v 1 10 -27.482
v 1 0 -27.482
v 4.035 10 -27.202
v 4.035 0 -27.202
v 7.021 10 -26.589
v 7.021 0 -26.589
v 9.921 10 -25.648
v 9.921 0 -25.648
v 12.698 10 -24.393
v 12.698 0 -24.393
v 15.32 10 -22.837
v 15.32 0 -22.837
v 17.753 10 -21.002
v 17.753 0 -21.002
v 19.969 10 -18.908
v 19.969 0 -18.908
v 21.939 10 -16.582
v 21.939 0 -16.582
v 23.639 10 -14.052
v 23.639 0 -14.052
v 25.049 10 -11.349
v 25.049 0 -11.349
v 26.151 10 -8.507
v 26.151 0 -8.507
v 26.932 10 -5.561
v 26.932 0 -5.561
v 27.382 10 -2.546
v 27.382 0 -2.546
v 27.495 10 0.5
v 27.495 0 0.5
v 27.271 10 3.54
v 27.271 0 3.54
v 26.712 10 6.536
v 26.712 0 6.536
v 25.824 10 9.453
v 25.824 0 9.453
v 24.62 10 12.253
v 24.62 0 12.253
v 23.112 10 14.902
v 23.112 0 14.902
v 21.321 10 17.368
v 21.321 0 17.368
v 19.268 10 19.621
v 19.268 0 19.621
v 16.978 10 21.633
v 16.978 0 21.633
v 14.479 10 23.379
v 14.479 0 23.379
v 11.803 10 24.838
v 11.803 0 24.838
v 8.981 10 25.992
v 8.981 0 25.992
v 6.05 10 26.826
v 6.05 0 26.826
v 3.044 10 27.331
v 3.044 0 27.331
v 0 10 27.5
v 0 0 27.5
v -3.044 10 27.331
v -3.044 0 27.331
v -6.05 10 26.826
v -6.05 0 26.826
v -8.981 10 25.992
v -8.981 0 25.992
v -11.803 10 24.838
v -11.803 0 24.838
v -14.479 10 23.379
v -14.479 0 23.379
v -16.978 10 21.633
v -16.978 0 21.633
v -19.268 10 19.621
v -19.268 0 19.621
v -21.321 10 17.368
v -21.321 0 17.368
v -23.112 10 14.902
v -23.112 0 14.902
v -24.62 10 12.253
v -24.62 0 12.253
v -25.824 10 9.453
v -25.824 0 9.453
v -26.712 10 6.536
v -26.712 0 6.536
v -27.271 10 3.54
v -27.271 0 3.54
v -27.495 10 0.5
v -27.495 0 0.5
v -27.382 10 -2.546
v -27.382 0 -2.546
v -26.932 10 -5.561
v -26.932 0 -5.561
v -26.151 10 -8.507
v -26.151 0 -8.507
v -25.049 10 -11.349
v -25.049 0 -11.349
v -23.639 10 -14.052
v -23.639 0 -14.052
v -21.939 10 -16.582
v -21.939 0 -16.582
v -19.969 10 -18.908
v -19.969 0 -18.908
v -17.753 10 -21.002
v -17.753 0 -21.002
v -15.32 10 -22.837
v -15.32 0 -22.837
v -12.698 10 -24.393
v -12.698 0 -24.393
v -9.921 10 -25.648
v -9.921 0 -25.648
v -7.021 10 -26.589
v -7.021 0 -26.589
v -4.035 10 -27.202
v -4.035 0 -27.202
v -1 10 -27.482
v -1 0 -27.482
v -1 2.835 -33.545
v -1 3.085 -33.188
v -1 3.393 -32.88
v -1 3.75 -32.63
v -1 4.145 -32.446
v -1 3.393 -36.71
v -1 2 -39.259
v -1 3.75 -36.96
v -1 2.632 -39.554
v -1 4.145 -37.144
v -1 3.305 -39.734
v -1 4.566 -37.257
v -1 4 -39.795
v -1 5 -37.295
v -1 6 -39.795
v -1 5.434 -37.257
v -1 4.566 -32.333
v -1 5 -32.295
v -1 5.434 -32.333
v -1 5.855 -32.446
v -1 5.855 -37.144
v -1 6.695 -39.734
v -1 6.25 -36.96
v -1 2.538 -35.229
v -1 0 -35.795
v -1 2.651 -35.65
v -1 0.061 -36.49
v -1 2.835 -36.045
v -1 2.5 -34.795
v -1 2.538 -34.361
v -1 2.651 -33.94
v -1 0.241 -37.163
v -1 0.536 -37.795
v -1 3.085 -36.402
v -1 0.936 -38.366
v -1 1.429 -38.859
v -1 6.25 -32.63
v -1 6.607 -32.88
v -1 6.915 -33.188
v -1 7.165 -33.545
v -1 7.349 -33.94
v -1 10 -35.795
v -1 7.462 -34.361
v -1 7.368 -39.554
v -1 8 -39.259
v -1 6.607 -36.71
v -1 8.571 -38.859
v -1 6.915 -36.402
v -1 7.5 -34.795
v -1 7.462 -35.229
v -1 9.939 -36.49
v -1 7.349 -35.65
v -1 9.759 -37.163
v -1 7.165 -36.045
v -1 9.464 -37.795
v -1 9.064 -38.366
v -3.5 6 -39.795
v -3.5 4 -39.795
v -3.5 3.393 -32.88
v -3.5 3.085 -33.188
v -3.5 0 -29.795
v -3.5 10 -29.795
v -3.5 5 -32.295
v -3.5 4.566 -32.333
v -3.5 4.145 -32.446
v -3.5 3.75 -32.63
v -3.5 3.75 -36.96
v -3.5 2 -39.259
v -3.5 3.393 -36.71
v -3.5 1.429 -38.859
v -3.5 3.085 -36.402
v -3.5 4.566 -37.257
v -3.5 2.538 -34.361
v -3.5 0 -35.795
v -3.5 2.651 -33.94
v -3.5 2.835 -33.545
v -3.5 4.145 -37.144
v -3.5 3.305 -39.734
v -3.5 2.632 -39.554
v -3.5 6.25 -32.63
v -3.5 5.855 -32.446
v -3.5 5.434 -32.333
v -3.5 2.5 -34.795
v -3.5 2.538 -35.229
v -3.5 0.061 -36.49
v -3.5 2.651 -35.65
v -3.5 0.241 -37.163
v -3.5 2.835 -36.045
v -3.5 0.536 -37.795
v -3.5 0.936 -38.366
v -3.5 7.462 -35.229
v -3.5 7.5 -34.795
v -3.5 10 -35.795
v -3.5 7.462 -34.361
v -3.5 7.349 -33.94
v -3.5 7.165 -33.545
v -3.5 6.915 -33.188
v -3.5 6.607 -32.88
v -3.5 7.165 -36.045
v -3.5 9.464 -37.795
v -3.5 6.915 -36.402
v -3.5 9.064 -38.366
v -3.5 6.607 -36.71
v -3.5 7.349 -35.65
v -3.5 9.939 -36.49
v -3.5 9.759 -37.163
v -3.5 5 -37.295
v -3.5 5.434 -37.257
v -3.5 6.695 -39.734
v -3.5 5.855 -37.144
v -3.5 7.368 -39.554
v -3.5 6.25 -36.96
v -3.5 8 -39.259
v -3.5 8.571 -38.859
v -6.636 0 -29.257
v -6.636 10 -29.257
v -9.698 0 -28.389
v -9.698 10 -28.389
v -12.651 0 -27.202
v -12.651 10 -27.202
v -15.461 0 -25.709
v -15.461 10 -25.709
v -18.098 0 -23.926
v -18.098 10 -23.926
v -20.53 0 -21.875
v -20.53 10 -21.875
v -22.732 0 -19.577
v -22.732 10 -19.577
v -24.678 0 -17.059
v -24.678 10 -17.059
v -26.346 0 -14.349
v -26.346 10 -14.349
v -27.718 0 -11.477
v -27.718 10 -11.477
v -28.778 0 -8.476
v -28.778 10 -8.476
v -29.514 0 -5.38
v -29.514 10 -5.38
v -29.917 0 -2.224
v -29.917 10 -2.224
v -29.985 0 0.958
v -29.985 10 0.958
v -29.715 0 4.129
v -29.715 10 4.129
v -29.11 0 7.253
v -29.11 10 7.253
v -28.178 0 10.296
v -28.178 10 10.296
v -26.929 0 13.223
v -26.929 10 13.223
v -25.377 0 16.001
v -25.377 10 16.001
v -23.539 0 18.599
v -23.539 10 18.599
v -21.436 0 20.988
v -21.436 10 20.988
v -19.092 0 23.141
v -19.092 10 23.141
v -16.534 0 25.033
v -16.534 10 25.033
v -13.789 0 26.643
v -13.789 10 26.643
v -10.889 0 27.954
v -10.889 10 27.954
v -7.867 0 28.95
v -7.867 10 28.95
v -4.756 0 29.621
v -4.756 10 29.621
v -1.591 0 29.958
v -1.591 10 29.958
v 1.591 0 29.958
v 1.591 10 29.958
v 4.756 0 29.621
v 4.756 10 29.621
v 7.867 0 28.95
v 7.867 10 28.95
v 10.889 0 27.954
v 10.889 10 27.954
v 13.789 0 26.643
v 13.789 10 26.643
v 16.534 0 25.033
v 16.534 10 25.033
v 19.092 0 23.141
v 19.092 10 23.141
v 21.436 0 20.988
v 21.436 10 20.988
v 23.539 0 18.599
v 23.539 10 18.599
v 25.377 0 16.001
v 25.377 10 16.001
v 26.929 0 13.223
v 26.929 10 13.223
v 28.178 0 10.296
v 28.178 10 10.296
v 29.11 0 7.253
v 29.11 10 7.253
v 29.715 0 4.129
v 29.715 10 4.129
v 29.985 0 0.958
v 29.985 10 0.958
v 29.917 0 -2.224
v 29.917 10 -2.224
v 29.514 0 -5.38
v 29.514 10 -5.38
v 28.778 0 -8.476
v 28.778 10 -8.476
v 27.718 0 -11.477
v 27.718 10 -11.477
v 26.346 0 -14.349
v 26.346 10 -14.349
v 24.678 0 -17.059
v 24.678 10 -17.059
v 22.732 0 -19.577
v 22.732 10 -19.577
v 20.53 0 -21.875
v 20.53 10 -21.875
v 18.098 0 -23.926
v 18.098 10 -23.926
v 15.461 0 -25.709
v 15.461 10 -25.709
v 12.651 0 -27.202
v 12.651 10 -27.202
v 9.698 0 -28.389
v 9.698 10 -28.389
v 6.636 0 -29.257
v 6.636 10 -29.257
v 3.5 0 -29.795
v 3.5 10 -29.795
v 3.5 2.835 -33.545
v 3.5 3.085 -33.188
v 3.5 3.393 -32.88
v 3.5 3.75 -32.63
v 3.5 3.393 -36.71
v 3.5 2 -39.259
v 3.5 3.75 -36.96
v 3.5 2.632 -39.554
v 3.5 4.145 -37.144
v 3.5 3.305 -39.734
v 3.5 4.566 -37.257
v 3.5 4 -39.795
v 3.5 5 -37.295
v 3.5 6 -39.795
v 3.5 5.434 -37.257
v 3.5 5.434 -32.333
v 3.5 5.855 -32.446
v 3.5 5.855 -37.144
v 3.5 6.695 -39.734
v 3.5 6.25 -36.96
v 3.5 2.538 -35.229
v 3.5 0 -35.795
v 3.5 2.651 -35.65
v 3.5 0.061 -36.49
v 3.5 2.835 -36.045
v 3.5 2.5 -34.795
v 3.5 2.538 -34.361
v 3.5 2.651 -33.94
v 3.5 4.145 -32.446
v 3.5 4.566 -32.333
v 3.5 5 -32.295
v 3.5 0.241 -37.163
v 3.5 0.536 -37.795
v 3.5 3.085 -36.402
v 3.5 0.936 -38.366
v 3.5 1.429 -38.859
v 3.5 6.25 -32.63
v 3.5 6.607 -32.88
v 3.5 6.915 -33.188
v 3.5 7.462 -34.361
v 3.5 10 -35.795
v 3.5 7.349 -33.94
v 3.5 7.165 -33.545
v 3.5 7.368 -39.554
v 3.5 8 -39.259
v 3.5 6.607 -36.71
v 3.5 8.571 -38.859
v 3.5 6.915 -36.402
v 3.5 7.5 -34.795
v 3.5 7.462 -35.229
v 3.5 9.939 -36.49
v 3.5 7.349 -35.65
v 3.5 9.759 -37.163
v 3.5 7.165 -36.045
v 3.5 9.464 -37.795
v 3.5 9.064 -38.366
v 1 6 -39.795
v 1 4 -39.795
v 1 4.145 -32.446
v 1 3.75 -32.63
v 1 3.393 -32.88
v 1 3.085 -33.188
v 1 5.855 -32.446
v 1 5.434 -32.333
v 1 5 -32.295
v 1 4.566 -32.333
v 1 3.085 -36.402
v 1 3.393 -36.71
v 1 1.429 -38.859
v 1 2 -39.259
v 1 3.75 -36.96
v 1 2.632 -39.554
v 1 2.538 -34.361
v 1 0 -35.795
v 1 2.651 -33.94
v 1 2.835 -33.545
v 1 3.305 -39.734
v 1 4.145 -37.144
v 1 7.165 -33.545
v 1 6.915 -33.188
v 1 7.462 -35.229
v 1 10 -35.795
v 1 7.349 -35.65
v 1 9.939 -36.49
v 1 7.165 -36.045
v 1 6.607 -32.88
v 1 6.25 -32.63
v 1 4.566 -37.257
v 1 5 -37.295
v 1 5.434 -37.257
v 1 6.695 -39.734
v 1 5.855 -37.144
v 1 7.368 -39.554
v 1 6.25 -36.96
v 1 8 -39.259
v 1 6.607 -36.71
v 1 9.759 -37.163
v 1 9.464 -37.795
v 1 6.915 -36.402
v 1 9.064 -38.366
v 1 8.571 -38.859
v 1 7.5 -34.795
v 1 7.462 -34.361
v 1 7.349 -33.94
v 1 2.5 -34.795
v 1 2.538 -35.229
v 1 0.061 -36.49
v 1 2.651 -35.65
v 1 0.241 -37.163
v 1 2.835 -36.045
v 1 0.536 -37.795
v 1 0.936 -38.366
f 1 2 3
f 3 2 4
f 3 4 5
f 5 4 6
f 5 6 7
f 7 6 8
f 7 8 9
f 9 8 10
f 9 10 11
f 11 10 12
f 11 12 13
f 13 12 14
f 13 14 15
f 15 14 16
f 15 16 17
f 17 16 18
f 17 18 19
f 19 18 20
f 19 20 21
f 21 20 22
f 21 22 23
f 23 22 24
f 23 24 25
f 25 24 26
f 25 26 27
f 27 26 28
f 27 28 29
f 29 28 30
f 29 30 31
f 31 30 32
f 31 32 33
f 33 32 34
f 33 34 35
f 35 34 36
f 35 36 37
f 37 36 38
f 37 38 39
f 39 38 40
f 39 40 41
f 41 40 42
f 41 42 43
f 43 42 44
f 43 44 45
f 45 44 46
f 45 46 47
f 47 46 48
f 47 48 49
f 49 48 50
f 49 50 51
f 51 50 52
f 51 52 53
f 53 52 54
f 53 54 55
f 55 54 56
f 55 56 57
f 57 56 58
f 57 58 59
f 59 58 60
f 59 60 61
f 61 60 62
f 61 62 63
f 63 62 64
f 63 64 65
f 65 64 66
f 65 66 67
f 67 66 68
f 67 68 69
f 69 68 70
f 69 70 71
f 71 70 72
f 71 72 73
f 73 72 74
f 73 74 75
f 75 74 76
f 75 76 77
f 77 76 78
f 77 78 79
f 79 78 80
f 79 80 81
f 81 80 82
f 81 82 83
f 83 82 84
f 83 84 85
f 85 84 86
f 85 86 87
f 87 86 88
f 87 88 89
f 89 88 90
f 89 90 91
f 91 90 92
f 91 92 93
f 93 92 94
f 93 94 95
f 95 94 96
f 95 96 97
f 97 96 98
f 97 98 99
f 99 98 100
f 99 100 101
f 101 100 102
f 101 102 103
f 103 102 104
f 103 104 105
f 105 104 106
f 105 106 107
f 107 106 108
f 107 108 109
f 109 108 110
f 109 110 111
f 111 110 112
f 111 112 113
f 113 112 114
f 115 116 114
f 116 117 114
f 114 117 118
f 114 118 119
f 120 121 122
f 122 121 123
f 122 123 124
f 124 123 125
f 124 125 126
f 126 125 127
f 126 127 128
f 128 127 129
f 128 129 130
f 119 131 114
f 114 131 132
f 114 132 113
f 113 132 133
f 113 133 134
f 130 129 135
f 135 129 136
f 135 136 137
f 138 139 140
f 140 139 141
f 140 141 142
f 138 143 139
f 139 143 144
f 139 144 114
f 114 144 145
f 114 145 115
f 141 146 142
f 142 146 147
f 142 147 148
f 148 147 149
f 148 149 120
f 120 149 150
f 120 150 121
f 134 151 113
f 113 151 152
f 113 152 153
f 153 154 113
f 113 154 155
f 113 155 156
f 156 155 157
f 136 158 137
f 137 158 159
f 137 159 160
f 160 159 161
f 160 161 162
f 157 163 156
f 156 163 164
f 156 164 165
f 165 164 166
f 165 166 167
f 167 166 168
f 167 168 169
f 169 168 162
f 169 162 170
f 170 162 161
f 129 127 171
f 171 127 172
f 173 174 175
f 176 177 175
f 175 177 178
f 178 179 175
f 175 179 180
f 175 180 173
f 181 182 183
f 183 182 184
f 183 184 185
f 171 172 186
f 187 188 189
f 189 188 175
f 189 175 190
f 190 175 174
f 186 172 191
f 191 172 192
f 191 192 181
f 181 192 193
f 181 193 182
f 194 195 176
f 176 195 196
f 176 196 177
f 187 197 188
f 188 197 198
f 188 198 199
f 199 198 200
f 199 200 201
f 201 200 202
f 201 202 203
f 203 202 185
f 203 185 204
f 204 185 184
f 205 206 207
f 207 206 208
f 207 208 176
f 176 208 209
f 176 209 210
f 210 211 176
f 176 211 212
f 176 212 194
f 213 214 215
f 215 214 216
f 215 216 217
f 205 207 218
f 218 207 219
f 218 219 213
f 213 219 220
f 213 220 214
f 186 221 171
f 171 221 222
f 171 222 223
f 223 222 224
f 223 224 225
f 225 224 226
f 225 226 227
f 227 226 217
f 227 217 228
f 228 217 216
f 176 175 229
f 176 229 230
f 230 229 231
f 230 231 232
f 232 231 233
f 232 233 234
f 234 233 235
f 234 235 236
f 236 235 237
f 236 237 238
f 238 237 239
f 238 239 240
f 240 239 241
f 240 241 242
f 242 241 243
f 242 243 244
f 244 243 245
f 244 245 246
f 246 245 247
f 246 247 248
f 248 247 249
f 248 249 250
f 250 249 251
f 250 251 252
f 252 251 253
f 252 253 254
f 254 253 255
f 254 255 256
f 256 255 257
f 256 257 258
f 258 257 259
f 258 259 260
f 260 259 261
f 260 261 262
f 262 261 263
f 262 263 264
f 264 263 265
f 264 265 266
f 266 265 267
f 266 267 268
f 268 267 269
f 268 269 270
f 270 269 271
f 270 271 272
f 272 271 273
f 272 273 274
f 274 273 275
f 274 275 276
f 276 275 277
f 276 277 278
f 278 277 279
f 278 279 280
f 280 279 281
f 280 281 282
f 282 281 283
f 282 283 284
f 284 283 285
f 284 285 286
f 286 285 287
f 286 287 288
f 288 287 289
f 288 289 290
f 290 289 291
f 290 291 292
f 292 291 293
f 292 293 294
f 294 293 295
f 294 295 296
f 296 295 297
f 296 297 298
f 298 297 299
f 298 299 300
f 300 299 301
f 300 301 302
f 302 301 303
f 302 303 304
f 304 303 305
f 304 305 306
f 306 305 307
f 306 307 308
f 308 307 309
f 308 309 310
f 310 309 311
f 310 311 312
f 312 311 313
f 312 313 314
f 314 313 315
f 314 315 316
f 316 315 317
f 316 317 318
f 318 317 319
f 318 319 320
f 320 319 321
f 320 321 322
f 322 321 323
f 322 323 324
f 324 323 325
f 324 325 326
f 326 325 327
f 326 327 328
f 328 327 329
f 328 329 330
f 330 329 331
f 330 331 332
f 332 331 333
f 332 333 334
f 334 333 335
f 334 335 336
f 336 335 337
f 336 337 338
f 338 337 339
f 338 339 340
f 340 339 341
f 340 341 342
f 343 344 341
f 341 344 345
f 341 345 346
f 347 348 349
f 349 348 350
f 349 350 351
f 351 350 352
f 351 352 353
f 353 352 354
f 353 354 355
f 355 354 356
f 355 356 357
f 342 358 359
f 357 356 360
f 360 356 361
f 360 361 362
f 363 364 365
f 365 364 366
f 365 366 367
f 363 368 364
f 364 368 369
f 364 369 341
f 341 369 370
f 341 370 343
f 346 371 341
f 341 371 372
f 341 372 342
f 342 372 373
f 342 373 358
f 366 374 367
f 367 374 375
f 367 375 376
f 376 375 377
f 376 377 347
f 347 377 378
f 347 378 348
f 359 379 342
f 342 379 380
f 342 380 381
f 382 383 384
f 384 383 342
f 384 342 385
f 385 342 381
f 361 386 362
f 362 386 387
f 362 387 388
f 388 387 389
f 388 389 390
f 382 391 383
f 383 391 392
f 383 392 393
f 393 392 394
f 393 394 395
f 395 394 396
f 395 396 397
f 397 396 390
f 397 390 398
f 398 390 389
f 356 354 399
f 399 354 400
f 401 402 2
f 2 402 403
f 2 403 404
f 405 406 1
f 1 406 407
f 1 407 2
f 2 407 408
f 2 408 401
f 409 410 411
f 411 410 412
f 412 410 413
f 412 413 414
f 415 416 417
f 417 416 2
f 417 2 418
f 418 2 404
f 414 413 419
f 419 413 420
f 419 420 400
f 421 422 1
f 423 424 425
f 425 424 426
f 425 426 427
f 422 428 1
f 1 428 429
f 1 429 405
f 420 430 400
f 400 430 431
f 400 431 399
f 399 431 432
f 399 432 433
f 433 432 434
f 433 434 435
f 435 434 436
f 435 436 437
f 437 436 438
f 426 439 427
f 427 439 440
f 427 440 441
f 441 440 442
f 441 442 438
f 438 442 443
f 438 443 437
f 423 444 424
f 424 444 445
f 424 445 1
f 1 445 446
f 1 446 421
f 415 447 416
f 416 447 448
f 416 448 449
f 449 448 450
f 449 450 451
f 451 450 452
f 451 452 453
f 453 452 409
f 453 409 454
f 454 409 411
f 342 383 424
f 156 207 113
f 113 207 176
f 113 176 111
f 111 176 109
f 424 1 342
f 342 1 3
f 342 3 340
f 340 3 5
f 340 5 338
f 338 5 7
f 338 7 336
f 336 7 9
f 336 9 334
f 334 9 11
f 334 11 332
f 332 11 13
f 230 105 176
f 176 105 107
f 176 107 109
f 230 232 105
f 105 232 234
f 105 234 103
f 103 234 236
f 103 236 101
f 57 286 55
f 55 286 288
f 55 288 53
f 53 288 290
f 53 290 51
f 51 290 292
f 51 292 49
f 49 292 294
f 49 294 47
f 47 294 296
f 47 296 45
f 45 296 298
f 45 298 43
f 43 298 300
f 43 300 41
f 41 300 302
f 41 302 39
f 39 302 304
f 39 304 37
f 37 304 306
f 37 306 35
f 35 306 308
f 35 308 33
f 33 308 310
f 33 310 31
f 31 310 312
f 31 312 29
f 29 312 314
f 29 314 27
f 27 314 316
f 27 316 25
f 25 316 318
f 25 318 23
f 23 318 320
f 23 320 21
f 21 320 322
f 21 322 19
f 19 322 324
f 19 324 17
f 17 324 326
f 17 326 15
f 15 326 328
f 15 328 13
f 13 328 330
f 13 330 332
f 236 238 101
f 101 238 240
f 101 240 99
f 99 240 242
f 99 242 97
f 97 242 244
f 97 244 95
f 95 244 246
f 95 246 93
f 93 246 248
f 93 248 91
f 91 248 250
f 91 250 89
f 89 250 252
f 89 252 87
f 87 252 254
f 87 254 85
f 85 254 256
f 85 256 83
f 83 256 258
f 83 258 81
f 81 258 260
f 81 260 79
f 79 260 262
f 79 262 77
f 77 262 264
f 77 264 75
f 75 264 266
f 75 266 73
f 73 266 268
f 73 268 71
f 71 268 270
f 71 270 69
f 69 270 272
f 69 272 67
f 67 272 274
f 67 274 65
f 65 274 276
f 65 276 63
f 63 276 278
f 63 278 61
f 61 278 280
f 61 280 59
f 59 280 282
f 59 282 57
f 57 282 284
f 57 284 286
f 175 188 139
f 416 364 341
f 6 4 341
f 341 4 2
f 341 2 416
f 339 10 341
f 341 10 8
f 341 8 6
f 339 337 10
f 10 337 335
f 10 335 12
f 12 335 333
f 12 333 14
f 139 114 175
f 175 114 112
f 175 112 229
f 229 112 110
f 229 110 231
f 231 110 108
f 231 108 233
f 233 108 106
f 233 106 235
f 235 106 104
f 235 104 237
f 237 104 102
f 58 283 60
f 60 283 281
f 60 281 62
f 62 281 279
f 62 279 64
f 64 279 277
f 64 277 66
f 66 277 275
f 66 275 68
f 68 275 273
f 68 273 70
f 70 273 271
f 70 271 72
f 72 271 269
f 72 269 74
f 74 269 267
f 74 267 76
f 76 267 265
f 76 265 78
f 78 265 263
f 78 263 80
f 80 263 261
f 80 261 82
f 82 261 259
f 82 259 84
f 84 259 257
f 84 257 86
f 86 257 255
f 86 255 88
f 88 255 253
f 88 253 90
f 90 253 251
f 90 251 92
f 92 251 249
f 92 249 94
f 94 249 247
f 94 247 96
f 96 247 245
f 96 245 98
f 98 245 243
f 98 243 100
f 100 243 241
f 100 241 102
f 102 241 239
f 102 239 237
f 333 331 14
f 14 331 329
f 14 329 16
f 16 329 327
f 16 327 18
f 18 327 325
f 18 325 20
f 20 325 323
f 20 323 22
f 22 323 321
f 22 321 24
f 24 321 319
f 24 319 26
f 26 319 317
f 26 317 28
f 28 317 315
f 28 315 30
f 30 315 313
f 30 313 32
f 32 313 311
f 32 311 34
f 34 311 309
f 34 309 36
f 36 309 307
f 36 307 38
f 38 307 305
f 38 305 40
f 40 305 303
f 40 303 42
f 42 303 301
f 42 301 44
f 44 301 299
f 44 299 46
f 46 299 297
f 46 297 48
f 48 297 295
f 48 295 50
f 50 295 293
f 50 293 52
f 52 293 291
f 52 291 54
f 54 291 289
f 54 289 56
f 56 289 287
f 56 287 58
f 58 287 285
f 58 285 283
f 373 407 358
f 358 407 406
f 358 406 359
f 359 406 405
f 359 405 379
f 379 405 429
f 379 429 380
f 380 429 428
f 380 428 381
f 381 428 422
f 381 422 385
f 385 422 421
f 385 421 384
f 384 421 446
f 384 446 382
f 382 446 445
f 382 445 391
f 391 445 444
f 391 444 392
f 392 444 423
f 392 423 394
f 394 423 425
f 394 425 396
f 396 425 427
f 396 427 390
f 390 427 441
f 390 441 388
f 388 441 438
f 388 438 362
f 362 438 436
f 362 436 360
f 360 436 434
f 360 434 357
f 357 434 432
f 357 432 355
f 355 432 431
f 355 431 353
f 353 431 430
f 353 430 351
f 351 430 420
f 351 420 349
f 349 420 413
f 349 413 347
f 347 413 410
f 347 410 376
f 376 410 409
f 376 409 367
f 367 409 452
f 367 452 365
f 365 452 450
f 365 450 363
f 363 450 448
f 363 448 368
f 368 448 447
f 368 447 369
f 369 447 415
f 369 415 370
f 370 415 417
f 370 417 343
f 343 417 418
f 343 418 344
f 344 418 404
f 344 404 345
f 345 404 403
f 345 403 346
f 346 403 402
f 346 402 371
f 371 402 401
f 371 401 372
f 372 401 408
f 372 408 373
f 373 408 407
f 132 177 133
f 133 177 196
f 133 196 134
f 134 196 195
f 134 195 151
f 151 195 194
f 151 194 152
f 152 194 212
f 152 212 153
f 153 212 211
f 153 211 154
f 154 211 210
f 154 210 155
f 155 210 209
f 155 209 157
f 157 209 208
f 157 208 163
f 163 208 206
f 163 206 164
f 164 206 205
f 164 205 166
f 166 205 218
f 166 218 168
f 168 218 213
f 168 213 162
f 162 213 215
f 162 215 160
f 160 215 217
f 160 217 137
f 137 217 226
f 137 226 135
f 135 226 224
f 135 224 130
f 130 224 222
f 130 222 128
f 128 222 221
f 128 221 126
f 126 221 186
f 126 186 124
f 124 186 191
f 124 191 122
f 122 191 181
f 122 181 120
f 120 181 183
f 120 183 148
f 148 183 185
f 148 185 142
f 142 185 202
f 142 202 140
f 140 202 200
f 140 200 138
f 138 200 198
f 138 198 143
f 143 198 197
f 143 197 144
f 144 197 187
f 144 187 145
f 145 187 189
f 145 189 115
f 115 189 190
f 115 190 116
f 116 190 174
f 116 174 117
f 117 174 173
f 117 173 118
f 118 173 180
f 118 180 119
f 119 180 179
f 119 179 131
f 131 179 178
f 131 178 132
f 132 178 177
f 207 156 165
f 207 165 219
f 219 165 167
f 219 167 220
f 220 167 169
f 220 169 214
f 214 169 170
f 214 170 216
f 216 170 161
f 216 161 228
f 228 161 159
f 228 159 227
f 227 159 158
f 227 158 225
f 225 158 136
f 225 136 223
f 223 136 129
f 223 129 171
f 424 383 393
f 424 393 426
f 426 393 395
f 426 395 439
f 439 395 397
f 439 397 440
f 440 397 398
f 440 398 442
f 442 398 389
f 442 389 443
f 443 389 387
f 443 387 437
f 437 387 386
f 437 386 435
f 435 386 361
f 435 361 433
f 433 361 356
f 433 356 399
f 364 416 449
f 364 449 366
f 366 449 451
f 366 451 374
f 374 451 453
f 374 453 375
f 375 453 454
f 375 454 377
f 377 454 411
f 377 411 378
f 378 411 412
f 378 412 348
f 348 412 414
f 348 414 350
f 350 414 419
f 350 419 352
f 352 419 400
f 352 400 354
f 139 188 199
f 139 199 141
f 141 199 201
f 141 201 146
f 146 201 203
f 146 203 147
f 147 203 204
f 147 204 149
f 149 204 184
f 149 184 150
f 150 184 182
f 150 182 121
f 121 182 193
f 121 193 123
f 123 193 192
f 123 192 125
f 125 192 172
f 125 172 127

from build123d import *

# Parameters (mm, degrees)
SALIENTE_EXTRUIR1_DEPTH = 10
CROQUIS3_R              = 2.5
CORTAR_EXTRUIR1_DEPTH   = 10
REDONDEO1_R             = 4


with BuildPart() as part:
    # Croquis2 → Saliente-Extruir1 (new body)
    with BuildSketch(Plane(origin=(0, 0, 0), x_dir=(1, 0, 0), z_dir=(0, 1, 0))):
        with BuildLine():
            Line((-1, 39.795133831), (-1, 27.481812167))
            ThreePointArc((-1, 27.481812167), (0, -27.5), (1, 27.481812167))
            Line((1, 27.481812167), (1, 39.795133831))
            Line((1, 39.795133831), (3.5, 39.795133831))
            Line((3.5, 39.795133831), (3.5, 29.795133831))
            ThreePointArc((3.5, 29.795133831), (0, -30), (-3.5, 29.795133831))
            Line((-3.5, 29.795133831), (-3.5, 39.795133831))
            Line((-3.5, 39.795133831), (-1, 39.795133831))
        make_face()
    extrude(amount=SALIENTE_EXTRUIR1_DEPTH)

    # Croquis3 → Cortar-Extruir1 (cut)
    with BuildSketch(Plane.ZY.offset(3.5)):
        with Locations((-34.795133831, 5)):
            Circle(CROQUIS3_R)
    extrude(amount=-CORTAR_EXTRUIR1_DEPTH, mode=Mode.SUBTRACT)

    # Redondeo1
    redondeo1_edges = [part.edges().sort_by_distance(p)[0] for p in [
        (-2.25, 0, -39.795133831),
        (-2.25, 10, -39.795133831),
        (2.25, 10, -39.795133831),
        (2.25, 0, -39.795133831),
    ]]
    fillet(redondeo1_edges, radius=REDONDEO1_R)


solid = part.part
